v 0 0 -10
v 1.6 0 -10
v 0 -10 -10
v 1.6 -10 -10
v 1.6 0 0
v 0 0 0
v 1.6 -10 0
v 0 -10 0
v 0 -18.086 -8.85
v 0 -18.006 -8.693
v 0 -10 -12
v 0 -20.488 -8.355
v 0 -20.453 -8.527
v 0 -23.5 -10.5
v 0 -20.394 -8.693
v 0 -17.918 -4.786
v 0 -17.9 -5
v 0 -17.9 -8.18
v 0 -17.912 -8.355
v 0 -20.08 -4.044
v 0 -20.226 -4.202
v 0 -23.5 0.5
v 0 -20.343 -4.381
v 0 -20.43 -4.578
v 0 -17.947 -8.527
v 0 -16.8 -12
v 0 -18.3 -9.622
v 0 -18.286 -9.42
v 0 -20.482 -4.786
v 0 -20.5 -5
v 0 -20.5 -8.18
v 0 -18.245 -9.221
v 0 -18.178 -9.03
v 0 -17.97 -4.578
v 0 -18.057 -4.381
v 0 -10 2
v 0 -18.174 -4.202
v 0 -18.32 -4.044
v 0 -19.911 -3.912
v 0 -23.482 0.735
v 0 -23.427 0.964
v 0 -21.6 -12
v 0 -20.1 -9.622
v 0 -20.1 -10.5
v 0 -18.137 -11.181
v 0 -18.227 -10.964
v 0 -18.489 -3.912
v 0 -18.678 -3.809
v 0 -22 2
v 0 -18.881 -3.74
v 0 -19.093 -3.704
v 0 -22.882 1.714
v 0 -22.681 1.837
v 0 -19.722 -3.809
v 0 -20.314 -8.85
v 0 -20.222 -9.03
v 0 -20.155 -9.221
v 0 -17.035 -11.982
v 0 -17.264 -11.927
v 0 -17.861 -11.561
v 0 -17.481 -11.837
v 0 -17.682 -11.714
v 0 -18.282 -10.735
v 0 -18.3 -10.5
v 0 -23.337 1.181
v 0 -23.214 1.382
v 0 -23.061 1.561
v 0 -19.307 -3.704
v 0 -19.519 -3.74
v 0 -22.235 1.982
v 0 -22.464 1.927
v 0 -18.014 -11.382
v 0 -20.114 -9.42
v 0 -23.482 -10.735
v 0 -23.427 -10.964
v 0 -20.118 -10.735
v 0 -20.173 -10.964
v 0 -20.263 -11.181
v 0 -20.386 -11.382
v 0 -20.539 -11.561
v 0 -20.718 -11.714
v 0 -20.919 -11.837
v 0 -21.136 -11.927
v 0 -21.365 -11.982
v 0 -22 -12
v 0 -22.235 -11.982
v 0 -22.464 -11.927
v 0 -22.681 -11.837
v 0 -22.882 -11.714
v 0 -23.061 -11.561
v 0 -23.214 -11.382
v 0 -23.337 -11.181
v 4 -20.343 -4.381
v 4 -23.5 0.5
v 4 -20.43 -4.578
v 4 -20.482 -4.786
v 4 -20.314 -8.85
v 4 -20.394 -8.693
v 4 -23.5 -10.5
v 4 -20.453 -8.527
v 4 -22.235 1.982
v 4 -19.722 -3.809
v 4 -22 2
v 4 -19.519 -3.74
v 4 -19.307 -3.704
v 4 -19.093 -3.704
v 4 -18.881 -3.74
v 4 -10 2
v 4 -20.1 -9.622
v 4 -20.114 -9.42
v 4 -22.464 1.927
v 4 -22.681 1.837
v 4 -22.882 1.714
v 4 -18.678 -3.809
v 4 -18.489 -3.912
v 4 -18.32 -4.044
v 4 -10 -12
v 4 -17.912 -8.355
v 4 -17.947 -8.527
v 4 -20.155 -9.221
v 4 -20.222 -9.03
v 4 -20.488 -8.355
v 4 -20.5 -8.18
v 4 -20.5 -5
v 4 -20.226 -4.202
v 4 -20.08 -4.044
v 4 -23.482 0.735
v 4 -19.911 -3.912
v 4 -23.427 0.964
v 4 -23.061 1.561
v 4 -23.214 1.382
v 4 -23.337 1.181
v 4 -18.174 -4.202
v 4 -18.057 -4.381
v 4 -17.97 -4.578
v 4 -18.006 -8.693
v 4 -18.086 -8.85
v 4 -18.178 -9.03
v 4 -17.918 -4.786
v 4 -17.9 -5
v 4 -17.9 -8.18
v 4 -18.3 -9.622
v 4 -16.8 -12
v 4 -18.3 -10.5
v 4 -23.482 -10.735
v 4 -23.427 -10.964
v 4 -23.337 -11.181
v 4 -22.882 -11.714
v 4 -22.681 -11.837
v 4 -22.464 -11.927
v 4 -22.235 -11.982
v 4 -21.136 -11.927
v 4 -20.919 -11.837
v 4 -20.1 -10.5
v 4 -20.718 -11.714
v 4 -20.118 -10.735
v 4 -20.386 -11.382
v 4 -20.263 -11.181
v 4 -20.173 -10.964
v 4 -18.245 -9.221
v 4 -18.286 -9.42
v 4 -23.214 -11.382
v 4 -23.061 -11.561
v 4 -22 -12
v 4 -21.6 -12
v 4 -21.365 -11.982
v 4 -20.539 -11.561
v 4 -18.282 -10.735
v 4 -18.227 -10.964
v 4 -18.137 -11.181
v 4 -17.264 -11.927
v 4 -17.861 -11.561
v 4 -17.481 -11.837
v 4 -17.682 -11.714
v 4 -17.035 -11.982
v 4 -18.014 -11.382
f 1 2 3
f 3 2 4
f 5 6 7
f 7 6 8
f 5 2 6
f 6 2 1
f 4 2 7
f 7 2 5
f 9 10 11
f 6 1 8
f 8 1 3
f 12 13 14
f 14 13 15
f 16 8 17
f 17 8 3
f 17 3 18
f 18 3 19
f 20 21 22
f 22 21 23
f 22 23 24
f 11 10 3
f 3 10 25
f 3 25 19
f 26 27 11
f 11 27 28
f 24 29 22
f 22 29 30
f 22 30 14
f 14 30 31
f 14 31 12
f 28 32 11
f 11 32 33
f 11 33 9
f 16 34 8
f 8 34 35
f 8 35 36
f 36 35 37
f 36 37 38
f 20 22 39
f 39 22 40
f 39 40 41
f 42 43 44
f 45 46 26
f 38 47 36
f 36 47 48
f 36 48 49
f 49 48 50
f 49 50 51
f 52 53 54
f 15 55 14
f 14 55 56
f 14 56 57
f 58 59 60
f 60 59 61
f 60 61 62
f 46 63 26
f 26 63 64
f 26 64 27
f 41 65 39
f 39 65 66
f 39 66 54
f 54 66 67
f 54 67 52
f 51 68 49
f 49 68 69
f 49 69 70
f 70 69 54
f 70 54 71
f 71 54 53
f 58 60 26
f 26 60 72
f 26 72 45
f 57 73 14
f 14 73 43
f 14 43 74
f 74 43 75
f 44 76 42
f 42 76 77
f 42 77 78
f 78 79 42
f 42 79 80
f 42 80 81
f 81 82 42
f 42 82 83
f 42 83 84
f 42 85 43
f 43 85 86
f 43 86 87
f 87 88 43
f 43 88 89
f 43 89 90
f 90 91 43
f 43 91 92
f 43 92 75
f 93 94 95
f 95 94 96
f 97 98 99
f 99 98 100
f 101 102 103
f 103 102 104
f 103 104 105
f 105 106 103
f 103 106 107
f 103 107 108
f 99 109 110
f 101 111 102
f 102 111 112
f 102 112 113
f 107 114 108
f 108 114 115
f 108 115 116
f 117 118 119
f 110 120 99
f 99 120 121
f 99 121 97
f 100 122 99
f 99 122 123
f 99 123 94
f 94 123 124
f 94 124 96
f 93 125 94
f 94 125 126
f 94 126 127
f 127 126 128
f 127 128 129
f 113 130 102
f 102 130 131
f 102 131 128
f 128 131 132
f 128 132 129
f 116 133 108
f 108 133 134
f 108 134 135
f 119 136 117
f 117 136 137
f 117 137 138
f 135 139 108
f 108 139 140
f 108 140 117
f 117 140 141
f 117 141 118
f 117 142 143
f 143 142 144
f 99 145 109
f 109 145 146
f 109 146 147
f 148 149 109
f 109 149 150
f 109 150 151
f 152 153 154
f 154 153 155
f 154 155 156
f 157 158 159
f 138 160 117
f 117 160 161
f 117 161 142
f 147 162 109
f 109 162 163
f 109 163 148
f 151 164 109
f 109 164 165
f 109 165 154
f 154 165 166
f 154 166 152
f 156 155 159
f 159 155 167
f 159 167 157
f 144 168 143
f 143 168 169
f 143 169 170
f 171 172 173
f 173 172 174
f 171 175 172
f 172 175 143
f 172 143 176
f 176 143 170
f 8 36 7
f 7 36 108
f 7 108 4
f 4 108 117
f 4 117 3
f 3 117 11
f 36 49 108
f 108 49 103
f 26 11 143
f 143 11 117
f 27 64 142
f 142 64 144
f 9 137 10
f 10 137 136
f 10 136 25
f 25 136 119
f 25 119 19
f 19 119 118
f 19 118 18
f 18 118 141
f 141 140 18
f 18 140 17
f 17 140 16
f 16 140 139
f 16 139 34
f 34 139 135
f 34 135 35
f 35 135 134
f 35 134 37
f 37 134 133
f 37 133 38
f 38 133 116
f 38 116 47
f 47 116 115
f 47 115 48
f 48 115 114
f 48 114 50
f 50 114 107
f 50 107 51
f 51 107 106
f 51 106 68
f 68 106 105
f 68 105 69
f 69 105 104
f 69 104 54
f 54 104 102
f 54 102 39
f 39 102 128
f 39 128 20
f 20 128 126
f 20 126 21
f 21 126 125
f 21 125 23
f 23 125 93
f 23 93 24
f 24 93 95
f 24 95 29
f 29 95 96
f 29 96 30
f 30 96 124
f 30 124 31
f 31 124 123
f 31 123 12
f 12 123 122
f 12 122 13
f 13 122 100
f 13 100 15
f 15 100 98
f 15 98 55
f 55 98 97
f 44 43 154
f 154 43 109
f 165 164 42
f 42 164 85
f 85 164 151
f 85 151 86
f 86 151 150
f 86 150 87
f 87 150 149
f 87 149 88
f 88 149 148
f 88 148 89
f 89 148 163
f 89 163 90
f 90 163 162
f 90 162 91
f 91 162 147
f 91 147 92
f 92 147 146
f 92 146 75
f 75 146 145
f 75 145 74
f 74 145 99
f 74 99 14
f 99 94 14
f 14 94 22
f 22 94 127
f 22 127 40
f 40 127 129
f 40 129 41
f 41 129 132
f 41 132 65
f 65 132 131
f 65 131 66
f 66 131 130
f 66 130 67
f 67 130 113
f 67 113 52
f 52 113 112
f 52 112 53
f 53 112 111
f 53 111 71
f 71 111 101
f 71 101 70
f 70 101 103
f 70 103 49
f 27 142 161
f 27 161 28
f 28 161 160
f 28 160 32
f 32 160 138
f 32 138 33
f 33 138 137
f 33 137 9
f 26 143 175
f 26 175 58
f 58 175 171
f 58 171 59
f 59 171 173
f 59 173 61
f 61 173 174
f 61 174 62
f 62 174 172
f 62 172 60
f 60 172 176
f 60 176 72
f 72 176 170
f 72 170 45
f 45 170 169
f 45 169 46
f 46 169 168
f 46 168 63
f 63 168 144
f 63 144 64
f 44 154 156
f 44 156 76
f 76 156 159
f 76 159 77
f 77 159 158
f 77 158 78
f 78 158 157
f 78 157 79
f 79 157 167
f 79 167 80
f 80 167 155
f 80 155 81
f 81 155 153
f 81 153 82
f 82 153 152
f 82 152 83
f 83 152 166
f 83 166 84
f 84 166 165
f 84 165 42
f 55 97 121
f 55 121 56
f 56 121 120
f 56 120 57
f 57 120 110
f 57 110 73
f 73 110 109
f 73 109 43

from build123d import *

# Parameters (mm, degrees)
SKETCH1_W           = 10
SKETCH1_H           = 10
BOSS_EXTRUDE1_DEPTH = 1.6
BOSS_EXTRUDE2_DEPTH = 10
SKETCH3_W           = 4
SKETCH3_H           = 2
BOSS_EXTRUDE3_DEPTH = 2
SKETCH4_W           = 4
SKETCH4_H           = 2
BOSS_EXTRUDE4_DEPTH = 2
BOSS_EXTRUDE5_DEPTH = 4
FILLET2_R           = 1.5


with BuildPart() as part:
    # Sketch1 → Boss-Extrude1 (new body)
    with BuildSketch(Plane(origin=(0, 0, 0), x_dir=(0, 0, -1), z_dir=(1, 0, 0))):
        with Locations((5, -5)):
            Rectangle(SKETCH1_W, SKETCH1_H)
    extrude(amount=BOSS_EXTRUDE1_DEPTH)

    # Sketch2 → Boss-Extrude2 (add)
    with BuildSketch(Plane.XY):
        Polygon((1.2, -12), (0, -12), (0, -10), (1.6, -10), (4, -10), (4, -12), (2.8, -12), align=None)
    extrude(amount=-BOSS_EXTRUDE2_DEPTH)

    # Sketch3 → Boss-Extrude3 (add)
    with BuildSketch(Plane.XY):
        with Locations((2, -11)):
            Rectangle(SKETCH3_W, SKETCH3_H)
    extrude(amount=BOSS_EXTRUDE3_DEPTH)

    # Sketch4 → Boss-Extrude4 (add)
    with BuildSketch(Plane(origin=(0, 0, -10), x_dir=(-1, 0, 0), z_dir=(0, 0, -1))):
        with Locations((-2, -11)):
            Rectangle(SKETCH4_W, SKETCH4_H)
    extrude(amount=BOSS_EXTRUDE4_DEPTH)

    # Sketch5 → Boss-Extrude5 (add)
    with BuildSketch(Plane(origin=(4, 0, 0), x_dir=(0, 0, -1), z_dir=(1, 0, 0))):
        with BuildLine():
            Line((12, -12), (-2, -12))
            Line((-2, -12), (-2, -16.665516671))
            Line((-2, -16.665516671), (-2, -18.3))
            Line((-2, -18.3), (-2, -20.1))
            Line((-2, -20.1), (-2, -22))
            ThreePointArc((-2, -22), (-1.560660172, -23.060660172), (-0.5, -23.5))
            Line((-0.5, -23.5), (10.5, -23.5))
            ThreePointArc((10.5, -23.5), (11.560660172, -23.060660172), (12, -22))
            Line((12, -22), (12, -20.1))
            Line((12, -20.1), (9.118083152, -20.1))
            ThreePointArc((9.118083152, -20.1), (8.689901951, -20.395826074), (8.18, -20.5))
            Line((8.18, -20.5), (5, -20.5))
            ThreePointArc((5, -20.5), (3.7, -19.2), (5, -17.9))
            Line((5, -17.9), (8.18, -17.9))
            ThreePointArc((8.18, -17.9), (8.689901951, -18.004173926), (9.118083152, -18.3))
            Line((9.118083152, -18.3), (12, -18.3))
            Line((12, -18.3), (12, -12))
        make_face()
    extrude(amount=-BOSS_EXTRUDE5_DEPTH)

    # Fillet2
    fillet2_edges = [part.edges().sort_by_distance(p)[0] for p in [
        (2, -18.3, -12),
        (2, -18.3, -9.118083152),
        (2, -20.1, -9.118083152),
        (2, -20.1, -12),
    ]]
    fillet(fillet2_edges, radius=FILLET2_R)


solid = part.part
